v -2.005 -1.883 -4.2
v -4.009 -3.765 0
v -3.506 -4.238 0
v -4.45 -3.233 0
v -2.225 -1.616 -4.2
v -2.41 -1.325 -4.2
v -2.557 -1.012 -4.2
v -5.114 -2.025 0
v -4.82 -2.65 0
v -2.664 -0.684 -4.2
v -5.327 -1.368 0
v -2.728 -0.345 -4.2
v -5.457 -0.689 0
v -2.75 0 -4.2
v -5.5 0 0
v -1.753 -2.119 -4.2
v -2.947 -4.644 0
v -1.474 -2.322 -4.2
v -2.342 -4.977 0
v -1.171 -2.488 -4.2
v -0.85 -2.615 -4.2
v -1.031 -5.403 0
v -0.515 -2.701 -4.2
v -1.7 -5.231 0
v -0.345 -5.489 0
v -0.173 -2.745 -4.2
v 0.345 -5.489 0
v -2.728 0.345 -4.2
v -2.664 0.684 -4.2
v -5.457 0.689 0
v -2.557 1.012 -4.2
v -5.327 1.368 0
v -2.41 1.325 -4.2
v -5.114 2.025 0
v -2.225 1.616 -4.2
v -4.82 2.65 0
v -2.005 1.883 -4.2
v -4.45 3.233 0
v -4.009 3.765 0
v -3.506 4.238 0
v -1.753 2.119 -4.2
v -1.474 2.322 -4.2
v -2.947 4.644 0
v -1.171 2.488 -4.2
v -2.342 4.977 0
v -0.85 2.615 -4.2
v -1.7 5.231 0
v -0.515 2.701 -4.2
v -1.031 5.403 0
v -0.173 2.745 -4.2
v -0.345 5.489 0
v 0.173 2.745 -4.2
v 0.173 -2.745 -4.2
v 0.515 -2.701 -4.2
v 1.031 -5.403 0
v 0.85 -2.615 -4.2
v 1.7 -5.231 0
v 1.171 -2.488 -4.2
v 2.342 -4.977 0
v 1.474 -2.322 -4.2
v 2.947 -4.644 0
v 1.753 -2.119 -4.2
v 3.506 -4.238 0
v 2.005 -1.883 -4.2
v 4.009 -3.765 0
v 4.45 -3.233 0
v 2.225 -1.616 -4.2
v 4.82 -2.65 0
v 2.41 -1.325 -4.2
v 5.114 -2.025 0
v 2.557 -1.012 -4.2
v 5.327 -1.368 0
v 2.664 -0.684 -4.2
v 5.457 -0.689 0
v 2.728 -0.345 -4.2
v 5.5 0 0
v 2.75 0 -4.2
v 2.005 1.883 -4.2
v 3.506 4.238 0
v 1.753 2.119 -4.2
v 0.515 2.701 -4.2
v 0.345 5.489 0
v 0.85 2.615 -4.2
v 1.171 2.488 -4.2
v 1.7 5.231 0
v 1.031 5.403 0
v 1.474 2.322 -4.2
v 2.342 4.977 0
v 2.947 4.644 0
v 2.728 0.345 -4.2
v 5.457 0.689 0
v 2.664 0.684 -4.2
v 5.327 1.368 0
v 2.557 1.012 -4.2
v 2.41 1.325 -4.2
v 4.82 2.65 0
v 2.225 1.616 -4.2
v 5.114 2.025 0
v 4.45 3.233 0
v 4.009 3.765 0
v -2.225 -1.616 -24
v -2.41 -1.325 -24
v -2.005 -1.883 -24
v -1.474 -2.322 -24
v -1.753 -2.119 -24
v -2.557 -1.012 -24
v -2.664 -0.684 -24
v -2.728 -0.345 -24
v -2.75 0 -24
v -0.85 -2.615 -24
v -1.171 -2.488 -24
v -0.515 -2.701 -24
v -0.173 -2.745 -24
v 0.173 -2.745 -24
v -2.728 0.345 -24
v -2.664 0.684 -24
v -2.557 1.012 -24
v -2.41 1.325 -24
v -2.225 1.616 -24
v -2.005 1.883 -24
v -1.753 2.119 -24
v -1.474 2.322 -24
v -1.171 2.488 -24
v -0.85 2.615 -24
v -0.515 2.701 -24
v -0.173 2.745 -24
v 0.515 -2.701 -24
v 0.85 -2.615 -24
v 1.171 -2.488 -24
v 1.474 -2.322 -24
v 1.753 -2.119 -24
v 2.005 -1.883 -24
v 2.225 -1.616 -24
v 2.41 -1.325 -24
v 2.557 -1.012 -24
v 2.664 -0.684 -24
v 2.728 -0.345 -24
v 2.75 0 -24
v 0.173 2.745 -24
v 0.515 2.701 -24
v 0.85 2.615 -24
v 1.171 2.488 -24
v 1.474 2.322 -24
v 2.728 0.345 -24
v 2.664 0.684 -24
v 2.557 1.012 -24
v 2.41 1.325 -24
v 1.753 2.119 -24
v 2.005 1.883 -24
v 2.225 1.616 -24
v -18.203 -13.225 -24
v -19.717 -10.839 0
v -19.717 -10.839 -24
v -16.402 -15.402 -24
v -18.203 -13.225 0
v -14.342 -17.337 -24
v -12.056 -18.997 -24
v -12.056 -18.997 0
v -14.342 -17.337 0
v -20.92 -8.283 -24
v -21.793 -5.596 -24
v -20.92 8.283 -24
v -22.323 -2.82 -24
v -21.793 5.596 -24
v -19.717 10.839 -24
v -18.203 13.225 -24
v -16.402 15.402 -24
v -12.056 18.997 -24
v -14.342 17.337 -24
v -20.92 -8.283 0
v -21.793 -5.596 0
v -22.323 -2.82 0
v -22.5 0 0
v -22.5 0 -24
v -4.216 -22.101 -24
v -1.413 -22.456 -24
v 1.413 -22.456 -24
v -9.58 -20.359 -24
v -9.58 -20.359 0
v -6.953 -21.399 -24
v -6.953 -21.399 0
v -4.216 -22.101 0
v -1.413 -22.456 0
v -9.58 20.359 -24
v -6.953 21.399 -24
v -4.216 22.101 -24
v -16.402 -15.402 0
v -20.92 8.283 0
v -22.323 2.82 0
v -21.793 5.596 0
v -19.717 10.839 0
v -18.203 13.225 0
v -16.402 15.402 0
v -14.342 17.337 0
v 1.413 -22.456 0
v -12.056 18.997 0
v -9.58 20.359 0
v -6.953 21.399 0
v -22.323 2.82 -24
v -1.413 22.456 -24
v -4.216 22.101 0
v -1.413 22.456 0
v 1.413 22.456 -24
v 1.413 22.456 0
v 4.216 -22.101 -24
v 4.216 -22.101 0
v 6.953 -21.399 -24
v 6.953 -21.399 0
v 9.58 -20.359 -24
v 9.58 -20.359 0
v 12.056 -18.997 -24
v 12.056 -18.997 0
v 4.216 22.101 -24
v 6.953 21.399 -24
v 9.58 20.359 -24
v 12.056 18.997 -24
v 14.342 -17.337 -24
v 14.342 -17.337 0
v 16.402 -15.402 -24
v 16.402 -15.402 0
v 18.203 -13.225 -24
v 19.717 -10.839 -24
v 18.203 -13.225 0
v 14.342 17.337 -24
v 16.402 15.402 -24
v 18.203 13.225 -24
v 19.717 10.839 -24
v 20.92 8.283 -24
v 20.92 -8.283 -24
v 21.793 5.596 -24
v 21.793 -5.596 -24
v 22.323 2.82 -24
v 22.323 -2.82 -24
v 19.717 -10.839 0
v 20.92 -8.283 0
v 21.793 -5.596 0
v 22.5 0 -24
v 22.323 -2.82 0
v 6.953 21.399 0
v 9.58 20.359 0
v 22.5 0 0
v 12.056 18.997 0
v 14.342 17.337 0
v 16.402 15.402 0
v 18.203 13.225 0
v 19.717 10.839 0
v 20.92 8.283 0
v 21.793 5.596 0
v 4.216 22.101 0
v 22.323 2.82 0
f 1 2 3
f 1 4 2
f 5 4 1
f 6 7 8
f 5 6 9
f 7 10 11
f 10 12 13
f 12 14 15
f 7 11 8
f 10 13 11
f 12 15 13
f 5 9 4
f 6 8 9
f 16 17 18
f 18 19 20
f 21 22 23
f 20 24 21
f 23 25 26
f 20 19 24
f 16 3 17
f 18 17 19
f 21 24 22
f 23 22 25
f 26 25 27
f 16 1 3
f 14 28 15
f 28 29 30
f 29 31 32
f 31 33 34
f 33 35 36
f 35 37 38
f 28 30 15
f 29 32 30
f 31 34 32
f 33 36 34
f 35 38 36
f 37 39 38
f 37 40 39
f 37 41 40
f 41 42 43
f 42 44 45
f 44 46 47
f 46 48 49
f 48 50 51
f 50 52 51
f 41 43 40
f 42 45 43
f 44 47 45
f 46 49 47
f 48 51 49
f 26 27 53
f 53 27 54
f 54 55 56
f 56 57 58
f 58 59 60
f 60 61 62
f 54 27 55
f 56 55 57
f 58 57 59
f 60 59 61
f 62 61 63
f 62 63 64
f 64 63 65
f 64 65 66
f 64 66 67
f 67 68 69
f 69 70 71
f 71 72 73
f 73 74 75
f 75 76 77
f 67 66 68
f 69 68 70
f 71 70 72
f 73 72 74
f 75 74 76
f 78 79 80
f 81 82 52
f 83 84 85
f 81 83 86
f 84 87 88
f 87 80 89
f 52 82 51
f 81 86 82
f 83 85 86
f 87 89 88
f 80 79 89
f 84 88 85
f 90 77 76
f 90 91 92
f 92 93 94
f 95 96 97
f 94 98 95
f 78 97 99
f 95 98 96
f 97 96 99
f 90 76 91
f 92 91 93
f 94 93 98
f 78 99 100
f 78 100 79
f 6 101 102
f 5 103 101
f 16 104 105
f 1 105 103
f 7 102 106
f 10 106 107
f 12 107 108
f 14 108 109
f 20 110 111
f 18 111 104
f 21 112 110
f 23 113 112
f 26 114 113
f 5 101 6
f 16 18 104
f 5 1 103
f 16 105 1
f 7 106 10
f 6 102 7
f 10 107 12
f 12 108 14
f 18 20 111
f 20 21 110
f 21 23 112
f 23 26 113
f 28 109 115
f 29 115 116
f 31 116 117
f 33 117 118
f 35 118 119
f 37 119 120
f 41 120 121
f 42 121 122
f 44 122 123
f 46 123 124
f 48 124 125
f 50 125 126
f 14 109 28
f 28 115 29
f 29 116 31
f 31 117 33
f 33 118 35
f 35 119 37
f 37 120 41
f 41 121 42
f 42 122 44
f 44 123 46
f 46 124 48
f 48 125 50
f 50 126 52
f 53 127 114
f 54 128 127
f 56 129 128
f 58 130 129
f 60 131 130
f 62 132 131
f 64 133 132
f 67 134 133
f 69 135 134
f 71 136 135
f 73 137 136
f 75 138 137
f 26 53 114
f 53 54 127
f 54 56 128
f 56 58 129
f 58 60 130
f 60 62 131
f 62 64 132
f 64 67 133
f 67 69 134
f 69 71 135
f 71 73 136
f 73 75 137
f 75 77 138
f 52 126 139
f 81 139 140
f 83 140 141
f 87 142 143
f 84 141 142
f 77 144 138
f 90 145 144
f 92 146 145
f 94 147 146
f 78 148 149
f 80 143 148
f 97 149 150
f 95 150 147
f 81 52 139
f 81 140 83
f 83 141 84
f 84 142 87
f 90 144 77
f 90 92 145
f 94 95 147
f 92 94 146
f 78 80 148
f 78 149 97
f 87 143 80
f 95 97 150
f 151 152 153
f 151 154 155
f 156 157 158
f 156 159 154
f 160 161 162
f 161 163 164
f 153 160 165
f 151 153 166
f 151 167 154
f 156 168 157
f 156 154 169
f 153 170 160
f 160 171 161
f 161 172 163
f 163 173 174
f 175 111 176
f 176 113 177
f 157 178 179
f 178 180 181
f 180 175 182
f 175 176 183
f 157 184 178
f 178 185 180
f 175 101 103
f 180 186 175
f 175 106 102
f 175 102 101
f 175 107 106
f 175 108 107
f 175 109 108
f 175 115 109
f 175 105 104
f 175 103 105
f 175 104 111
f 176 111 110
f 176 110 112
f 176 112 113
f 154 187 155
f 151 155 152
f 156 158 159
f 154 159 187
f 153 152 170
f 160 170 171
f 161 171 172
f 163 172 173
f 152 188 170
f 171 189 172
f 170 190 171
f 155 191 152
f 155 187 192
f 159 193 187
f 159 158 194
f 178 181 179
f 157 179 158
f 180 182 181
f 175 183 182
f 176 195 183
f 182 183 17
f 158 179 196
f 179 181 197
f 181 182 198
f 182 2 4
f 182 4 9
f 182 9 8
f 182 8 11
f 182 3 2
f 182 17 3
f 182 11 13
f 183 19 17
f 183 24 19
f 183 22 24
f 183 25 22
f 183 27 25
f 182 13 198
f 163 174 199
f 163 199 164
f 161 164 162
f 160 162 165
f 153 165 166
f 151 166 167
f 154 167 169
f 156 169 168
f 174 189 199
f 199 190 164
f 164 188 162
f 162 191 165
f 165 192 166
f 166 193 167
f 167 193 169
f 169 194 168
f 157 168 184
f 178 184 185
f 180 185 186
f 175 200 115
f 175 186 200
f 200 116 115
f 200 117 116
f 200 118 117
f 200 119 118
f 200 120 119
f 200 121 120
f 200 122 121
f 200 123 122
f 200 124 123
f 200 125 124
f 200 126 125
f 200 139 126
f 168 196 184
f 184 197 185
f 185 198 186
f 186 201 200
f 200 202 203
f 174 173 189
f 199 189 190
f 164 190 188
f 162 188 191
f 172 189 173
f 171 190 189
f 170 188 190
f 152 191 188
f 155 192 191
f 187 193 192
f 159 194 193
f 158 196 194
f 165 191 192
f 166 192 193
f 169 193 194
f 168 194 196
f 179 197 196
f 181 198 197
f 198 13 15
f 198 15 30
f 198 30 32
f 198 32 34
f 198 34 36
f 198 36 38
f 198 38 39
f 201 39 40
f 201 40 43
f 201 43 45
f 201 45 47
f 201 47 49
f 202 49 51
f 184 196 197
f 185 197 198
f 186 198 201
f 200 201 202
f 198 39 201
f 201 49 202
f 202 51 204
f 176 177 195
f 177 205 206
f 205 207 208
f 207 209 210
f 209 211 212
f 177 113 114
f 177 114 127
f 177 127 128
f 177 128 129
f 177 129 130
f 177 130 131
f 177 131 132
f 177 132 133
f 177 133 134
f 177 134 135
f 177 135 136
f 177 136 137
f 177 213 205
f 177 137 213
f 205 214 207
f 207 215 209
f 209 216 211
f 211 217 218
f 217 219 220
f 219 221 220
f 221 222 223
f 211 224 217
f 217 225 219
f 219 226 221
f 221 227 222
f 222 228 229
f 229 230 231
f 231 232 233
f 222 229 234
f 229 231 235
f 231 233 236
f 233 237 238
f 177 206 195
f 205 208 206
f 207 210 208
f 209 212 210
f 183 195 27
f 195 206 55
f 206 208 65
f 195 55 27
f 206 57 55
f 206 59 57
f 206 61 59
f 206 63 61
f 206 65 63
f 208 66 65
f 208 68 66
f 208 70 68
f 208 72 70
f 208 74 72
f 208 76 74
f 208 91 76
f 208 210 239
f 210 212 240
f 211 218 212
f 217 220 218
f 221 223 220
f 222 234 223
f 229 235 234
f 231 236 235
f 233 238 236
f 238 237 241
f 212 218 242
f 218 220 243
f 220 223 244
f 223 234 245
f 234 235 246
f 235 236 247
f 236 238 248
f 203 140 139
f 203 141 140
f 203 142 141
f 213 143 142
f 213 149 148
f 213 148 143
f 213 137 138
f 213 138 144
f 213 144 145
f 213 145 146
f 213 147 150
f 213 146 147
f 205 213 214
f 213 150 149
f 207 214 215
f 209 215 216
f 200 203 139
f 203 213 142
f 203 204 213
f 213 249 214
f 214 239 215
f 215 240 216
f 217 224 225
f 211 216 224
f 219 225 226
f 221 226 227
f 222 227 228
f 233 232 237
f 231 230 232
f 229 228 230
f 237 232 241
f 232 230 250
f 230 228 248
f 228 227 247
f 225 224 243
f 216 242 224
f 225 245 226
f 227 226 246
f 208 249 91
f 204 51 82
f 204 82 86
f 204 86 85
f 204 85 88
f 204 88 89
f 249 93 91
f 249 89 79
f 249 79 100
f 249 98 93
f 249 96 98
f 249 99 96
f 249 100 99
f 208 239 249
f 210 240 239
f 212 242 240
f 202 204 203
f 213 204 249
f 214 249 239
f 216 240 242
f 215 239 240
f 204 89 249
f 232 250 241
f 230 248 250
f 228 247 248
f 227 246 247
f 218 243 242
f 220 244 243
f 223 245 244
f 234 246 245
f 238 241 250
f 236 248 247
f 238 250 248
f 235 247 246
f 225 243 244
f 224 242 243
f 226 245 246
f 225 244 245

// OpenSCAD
$fn = 50;

difference() {
	union() {
		translate(v = [0, 0, -24.0]) {
			cylinder(h = 24, r = 22.5);
		}
	}
	union() {
		translate(v = [0, 0, 0]) {
			rotate(a = [0, 0, 0]) {
				difference() {
					union() {
						translate(v = [0, 0, -27.0]) {
							cylinder(h = 27, r = 2.25);
						}
						translate(v = [0, 0, -4.2]) {
							cylinder(h = 4.2, r1 = 2.75, r2 = 5.5);
						}
						translate(v = [0, 0, -27.0]) {
							cylinder(h = 27, r = 2.75);
						}
						translate(v = [0, 0, -27.0]) {
							cylinder(h = 27, r = 2.25);
						}
					}
					union();
				}
			}
		}
	}
}
